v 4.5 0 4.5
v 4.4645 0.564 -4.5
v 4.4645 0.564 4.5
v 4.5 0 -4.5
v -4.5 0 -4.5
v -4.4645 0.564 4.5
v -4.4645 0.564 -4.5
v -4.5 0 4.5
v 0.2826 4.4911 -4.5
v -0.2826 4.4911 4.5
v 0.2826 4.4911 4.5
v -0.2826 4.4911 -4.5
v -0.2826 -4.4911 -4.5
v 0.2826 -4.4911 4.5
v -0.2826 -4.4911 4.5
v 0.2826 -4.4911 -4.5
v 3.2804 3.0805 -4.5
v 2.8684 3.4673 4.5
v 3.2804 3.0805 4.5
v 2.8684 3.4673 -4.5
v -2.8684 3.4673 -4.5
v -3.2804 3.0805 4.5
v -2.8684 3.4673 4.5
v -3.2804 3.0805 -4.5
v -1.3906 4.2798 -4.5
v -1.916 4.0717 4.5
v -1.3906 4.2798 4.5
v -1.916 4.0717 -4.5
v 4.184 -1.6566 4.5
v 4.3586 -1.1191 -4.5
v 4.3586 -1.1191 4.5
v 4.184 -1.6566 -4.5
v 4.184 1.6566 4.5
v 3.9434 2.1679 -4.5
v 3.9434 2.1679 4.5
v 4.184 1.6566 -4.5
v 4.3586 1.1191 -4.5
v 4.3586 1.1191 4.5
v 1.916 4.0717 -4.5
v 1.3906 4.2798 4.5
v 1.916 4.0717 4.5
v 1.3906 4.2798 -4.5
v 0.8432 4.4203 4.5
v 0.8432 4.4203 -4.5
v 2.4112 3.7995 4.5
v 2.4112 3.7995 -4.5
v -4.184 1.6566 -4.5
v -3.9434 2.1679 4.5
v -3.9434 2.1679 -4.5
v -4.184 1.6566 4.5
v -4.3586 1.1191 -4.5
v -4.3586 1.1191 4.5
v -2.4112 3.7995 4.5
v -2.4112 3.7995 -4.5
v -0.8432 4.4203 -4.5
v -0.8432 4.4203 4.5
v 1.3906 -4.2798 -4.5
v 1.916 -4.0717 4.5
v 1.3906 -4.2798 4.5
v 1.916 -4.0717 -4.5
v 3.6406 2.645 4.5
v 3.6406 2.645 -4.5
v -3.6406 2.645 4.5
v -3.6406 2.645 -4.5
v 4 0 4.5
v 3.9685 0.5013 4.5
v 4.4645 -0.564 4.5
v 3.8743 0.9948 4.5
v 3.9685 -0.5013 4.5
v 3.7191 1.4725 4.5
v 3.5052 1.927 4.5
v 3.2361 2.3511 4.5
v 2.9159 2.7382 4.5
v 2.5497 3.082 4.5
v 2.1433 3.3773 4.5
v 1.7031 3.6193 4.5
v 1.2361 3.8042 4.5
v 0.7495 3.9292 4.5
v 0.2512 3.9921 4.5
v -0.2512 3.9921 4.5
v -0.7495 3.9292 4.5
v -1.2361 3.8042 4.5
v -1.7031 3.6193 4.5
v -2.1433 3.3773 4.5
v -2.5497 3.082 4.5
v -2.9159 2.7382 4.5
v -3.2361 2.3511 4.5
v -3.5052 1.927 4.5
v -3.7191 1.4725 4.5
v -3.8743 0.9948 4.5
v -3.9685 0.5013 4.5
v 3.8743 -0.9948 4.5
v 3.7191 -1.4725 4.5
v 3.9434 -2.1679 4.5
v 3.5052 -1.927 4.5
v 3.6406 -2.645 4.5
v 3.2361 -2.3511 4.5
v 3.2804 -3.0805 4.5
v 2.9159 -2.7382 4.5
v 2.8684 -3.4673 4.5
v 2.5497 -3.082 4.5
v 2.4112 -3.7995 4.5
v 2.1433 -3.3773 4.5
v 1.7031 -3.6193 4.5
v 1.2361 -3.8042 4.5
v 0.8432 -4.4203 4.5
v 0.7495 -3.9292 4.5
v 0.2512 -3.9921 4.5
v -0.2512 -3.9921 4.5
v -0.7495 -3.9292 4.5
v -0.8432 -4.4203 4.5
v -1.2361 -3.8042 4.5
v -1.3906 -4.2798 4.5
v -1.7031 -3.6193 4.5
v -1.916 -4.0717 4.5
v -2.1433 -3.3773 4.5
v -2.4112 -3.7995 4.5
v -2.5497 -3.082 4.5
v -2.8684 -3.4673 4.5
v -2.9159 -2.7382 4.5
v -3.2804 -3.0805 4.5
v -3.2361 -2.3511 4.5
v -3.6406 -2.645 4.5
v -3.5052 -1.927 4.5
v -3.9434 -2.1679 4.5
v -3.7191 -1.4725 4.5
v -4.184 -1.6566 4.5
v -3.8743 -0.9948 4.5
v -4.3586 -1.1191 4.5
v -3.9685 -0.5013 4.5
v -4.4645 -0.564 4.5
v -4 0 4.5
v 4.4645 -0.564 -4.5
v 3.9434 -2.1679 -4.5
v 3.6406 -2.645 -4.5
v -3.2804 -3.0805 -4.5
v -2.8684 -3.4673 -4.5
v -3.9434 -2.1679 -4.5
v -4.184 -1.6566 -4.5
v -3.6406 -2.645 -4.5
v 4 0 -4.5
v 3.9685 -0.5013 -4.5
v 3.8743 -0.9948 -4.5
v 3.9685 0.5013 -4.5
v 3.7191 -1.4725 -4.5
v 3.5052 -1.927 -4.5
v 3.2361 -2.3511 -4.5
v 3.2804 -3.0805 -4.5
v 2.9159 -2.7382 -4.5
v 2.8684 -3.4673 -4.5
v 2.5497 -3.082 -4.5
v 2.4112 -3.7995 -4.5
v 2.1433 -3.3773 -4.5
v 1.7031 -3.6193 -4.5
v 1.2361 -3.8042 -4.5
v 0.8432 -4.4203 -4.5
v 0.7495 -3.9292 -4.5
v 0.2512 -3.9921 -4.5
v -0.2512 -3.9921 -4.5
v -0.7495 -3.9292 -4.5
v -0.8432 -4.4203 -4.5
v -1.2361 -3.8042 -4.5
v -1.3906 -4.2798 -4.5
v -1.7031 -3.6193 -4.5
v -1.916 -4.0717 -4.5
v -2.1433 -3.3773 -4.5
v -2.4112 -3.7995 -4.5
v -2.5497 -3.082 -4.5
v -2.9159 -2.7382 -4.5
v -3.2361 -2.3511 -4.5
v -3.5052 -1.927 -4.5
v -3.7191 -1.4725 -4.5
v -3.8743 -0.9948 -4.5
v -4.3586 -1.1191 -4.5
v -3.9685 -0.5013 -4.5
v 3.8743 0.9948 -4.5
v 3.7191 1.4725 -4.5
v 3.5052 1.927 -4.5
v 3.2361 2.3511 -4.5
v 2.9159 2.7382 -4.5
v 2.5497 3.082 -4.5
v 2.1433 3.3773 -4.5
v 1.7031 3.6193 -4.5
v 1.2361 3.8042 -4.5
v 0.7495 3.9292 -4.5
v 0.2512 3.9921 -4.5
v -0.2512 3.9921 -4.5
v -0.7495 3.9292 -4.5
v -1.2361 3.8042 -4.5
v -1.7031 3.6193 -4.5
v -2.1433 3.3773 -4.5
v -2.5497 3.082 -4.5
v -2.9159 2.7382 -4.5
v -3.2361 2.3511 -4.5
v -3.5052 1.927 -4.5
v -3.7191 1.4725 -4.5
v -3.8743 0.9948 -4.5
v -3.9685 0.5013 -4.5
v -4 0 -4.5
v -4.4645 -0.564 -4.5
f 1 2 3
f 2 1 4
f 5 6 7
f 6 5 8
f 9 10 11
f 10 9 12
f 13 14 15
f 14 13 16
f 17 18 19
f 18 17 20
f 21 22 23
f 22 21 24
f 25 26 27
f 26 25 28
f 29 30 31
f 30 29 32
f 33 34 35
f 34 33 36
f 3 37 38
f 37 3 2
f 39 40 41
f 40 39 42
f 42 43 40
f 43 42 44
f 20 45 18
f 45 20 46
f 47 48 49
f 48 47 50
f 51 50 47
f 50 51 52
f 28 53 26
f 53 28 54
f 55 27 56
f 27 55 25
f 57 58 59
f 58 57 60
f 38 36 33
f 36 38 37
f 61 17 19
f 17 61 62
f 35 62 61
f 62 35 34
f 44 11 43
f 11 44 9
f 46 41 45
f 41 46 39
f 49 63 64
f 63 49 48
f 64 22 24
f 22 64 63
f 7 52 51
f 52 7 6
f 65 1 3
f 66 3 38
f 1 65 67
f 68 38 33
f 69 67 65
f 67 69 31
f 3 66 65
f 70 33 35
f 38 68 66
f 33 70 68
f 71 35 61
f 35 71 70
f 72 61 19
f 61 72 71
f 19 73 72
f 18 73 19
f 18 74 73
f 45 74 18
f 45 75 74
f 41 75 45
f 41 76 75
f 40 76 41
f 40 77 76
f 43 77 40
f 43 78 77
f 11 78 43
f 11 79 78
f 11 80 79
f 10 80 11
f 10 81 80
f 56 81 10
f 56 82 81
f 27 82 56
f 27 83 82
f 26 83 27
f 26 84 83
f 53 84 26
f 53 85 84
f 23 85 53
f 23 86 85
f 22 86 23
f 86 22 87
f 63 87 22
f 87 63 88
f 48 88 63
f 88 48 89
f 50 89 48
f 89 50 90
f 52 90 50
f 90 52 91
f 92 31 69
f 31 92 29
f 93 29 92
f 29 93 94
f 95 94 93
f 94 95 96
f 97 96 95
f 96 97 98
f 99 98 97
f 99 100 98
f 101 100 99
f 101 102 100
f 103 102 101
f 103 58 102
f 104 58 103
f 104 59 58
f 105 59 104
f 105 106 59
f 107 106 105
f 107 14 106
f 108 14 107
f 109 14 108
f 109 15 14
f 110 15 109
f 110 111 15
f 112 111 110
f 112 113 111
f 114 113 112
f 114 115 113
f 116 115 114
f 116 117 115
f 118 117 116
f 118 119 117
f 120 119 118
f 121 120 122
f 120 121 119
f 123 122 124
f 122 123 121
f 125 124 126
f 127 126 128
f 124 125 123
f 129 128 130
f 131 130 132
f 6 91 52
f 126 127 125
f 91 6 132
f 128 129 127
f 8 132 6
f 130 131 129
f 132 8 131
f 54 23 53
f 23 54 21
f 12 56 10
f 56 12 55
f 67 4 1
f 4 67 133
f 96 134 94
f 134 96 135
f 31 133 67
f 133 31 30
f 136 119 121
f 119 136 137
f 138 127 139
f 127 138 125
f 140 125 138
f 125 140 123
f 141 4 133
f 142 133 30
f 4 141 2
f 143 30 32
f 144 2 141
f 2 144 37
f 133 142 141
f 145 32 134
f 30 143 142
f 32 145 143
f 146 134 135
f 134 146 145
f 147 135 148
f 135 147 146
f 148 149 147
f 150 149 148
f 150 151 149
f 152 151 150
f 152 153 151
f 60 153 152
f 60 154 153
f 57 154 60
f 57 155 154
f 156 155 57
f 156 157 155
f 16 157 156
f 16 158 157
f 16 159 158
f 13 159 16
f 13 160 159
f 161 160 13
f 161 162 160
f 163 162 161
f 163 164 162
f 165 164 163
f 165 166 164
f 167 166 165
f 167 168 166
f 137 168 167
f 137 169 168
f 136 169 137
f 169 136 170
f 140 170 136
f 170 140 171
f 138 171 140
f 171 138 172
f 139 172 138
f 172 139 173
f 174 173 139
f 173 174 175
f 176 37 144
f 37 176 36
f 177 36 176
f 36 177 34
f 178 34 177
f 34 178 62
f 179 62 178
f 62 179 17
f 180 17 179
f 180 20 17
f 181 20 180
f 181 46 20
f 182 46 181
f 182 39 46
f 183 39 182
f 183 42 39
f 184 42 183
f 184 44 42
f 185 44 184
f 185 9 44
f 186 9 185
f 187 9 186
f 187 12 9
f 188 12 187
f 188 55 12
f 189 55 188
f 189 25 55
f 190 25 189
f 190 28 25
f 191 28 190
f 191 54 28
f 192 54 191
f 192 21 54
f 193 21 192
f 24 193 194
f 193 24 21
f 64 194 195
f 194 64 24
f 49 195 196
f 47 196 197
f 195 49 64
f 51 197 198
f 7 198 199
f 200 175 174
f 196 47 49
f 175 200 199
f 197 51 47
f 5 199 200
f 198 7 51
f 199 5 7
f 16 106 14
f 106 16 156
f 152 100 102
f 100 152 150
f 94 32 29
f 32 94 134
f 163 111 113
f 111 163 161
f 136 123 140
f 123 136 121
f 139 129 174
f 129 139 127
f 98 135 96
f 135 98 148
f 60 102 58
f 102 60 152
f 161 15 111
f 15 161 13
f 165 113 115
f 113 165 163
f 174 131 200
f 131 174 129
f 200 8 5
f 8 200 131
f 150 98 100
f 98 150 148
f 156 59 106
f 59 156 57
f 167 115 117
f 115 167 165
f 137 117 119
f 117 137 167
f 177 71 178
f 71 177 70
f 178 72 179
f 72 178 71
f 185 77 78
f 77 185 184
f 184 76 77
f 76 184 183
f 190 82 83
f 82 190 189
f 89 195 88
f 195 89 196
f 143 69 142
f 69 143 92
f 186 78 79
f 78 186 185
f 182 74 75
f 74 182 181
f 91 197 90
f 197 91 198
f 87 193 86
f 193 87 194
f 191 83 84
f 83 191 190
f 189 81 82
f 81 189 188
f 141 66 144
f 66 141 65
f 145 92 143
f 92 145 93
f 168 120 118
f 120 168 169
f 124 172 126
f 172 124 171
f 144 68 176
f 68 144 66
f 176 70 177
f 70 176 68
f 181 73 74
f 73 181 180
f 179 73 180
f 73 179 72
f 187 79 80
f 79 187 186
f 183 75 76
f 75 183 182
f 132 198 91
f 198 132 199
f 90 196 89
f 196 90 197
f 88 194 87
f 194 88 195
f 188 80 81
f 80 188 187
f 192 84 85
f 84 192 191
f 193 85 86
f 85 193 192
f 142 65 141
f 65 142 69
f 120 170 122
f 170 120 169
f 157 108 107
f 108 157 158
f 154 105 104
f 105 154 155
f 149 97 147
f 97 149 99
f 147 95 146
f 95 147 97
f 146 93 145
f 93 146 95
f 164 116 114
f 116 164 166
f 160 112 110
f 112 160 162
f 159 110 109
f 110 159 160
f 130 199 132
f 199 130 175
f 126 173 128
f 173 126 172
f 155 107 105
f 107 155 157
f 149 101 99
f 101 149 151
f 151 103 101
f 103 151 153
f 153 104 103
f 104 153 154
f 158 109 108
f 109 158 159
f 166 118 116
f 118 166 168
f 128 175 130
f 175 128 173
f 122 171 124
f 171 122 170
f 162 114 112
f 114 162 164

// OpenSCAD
$fn = 50;


difference() {
	union() {
		translate(v = [0, 0, -4.5000000000]) {
			cylinder(h = 9, r = 4.5000000000);
		}
	}
	union() {
		translate(v = [0, 0, -100.0000000000]) {
			cylinder(h = 200, r = 4);
		}
	}
}
